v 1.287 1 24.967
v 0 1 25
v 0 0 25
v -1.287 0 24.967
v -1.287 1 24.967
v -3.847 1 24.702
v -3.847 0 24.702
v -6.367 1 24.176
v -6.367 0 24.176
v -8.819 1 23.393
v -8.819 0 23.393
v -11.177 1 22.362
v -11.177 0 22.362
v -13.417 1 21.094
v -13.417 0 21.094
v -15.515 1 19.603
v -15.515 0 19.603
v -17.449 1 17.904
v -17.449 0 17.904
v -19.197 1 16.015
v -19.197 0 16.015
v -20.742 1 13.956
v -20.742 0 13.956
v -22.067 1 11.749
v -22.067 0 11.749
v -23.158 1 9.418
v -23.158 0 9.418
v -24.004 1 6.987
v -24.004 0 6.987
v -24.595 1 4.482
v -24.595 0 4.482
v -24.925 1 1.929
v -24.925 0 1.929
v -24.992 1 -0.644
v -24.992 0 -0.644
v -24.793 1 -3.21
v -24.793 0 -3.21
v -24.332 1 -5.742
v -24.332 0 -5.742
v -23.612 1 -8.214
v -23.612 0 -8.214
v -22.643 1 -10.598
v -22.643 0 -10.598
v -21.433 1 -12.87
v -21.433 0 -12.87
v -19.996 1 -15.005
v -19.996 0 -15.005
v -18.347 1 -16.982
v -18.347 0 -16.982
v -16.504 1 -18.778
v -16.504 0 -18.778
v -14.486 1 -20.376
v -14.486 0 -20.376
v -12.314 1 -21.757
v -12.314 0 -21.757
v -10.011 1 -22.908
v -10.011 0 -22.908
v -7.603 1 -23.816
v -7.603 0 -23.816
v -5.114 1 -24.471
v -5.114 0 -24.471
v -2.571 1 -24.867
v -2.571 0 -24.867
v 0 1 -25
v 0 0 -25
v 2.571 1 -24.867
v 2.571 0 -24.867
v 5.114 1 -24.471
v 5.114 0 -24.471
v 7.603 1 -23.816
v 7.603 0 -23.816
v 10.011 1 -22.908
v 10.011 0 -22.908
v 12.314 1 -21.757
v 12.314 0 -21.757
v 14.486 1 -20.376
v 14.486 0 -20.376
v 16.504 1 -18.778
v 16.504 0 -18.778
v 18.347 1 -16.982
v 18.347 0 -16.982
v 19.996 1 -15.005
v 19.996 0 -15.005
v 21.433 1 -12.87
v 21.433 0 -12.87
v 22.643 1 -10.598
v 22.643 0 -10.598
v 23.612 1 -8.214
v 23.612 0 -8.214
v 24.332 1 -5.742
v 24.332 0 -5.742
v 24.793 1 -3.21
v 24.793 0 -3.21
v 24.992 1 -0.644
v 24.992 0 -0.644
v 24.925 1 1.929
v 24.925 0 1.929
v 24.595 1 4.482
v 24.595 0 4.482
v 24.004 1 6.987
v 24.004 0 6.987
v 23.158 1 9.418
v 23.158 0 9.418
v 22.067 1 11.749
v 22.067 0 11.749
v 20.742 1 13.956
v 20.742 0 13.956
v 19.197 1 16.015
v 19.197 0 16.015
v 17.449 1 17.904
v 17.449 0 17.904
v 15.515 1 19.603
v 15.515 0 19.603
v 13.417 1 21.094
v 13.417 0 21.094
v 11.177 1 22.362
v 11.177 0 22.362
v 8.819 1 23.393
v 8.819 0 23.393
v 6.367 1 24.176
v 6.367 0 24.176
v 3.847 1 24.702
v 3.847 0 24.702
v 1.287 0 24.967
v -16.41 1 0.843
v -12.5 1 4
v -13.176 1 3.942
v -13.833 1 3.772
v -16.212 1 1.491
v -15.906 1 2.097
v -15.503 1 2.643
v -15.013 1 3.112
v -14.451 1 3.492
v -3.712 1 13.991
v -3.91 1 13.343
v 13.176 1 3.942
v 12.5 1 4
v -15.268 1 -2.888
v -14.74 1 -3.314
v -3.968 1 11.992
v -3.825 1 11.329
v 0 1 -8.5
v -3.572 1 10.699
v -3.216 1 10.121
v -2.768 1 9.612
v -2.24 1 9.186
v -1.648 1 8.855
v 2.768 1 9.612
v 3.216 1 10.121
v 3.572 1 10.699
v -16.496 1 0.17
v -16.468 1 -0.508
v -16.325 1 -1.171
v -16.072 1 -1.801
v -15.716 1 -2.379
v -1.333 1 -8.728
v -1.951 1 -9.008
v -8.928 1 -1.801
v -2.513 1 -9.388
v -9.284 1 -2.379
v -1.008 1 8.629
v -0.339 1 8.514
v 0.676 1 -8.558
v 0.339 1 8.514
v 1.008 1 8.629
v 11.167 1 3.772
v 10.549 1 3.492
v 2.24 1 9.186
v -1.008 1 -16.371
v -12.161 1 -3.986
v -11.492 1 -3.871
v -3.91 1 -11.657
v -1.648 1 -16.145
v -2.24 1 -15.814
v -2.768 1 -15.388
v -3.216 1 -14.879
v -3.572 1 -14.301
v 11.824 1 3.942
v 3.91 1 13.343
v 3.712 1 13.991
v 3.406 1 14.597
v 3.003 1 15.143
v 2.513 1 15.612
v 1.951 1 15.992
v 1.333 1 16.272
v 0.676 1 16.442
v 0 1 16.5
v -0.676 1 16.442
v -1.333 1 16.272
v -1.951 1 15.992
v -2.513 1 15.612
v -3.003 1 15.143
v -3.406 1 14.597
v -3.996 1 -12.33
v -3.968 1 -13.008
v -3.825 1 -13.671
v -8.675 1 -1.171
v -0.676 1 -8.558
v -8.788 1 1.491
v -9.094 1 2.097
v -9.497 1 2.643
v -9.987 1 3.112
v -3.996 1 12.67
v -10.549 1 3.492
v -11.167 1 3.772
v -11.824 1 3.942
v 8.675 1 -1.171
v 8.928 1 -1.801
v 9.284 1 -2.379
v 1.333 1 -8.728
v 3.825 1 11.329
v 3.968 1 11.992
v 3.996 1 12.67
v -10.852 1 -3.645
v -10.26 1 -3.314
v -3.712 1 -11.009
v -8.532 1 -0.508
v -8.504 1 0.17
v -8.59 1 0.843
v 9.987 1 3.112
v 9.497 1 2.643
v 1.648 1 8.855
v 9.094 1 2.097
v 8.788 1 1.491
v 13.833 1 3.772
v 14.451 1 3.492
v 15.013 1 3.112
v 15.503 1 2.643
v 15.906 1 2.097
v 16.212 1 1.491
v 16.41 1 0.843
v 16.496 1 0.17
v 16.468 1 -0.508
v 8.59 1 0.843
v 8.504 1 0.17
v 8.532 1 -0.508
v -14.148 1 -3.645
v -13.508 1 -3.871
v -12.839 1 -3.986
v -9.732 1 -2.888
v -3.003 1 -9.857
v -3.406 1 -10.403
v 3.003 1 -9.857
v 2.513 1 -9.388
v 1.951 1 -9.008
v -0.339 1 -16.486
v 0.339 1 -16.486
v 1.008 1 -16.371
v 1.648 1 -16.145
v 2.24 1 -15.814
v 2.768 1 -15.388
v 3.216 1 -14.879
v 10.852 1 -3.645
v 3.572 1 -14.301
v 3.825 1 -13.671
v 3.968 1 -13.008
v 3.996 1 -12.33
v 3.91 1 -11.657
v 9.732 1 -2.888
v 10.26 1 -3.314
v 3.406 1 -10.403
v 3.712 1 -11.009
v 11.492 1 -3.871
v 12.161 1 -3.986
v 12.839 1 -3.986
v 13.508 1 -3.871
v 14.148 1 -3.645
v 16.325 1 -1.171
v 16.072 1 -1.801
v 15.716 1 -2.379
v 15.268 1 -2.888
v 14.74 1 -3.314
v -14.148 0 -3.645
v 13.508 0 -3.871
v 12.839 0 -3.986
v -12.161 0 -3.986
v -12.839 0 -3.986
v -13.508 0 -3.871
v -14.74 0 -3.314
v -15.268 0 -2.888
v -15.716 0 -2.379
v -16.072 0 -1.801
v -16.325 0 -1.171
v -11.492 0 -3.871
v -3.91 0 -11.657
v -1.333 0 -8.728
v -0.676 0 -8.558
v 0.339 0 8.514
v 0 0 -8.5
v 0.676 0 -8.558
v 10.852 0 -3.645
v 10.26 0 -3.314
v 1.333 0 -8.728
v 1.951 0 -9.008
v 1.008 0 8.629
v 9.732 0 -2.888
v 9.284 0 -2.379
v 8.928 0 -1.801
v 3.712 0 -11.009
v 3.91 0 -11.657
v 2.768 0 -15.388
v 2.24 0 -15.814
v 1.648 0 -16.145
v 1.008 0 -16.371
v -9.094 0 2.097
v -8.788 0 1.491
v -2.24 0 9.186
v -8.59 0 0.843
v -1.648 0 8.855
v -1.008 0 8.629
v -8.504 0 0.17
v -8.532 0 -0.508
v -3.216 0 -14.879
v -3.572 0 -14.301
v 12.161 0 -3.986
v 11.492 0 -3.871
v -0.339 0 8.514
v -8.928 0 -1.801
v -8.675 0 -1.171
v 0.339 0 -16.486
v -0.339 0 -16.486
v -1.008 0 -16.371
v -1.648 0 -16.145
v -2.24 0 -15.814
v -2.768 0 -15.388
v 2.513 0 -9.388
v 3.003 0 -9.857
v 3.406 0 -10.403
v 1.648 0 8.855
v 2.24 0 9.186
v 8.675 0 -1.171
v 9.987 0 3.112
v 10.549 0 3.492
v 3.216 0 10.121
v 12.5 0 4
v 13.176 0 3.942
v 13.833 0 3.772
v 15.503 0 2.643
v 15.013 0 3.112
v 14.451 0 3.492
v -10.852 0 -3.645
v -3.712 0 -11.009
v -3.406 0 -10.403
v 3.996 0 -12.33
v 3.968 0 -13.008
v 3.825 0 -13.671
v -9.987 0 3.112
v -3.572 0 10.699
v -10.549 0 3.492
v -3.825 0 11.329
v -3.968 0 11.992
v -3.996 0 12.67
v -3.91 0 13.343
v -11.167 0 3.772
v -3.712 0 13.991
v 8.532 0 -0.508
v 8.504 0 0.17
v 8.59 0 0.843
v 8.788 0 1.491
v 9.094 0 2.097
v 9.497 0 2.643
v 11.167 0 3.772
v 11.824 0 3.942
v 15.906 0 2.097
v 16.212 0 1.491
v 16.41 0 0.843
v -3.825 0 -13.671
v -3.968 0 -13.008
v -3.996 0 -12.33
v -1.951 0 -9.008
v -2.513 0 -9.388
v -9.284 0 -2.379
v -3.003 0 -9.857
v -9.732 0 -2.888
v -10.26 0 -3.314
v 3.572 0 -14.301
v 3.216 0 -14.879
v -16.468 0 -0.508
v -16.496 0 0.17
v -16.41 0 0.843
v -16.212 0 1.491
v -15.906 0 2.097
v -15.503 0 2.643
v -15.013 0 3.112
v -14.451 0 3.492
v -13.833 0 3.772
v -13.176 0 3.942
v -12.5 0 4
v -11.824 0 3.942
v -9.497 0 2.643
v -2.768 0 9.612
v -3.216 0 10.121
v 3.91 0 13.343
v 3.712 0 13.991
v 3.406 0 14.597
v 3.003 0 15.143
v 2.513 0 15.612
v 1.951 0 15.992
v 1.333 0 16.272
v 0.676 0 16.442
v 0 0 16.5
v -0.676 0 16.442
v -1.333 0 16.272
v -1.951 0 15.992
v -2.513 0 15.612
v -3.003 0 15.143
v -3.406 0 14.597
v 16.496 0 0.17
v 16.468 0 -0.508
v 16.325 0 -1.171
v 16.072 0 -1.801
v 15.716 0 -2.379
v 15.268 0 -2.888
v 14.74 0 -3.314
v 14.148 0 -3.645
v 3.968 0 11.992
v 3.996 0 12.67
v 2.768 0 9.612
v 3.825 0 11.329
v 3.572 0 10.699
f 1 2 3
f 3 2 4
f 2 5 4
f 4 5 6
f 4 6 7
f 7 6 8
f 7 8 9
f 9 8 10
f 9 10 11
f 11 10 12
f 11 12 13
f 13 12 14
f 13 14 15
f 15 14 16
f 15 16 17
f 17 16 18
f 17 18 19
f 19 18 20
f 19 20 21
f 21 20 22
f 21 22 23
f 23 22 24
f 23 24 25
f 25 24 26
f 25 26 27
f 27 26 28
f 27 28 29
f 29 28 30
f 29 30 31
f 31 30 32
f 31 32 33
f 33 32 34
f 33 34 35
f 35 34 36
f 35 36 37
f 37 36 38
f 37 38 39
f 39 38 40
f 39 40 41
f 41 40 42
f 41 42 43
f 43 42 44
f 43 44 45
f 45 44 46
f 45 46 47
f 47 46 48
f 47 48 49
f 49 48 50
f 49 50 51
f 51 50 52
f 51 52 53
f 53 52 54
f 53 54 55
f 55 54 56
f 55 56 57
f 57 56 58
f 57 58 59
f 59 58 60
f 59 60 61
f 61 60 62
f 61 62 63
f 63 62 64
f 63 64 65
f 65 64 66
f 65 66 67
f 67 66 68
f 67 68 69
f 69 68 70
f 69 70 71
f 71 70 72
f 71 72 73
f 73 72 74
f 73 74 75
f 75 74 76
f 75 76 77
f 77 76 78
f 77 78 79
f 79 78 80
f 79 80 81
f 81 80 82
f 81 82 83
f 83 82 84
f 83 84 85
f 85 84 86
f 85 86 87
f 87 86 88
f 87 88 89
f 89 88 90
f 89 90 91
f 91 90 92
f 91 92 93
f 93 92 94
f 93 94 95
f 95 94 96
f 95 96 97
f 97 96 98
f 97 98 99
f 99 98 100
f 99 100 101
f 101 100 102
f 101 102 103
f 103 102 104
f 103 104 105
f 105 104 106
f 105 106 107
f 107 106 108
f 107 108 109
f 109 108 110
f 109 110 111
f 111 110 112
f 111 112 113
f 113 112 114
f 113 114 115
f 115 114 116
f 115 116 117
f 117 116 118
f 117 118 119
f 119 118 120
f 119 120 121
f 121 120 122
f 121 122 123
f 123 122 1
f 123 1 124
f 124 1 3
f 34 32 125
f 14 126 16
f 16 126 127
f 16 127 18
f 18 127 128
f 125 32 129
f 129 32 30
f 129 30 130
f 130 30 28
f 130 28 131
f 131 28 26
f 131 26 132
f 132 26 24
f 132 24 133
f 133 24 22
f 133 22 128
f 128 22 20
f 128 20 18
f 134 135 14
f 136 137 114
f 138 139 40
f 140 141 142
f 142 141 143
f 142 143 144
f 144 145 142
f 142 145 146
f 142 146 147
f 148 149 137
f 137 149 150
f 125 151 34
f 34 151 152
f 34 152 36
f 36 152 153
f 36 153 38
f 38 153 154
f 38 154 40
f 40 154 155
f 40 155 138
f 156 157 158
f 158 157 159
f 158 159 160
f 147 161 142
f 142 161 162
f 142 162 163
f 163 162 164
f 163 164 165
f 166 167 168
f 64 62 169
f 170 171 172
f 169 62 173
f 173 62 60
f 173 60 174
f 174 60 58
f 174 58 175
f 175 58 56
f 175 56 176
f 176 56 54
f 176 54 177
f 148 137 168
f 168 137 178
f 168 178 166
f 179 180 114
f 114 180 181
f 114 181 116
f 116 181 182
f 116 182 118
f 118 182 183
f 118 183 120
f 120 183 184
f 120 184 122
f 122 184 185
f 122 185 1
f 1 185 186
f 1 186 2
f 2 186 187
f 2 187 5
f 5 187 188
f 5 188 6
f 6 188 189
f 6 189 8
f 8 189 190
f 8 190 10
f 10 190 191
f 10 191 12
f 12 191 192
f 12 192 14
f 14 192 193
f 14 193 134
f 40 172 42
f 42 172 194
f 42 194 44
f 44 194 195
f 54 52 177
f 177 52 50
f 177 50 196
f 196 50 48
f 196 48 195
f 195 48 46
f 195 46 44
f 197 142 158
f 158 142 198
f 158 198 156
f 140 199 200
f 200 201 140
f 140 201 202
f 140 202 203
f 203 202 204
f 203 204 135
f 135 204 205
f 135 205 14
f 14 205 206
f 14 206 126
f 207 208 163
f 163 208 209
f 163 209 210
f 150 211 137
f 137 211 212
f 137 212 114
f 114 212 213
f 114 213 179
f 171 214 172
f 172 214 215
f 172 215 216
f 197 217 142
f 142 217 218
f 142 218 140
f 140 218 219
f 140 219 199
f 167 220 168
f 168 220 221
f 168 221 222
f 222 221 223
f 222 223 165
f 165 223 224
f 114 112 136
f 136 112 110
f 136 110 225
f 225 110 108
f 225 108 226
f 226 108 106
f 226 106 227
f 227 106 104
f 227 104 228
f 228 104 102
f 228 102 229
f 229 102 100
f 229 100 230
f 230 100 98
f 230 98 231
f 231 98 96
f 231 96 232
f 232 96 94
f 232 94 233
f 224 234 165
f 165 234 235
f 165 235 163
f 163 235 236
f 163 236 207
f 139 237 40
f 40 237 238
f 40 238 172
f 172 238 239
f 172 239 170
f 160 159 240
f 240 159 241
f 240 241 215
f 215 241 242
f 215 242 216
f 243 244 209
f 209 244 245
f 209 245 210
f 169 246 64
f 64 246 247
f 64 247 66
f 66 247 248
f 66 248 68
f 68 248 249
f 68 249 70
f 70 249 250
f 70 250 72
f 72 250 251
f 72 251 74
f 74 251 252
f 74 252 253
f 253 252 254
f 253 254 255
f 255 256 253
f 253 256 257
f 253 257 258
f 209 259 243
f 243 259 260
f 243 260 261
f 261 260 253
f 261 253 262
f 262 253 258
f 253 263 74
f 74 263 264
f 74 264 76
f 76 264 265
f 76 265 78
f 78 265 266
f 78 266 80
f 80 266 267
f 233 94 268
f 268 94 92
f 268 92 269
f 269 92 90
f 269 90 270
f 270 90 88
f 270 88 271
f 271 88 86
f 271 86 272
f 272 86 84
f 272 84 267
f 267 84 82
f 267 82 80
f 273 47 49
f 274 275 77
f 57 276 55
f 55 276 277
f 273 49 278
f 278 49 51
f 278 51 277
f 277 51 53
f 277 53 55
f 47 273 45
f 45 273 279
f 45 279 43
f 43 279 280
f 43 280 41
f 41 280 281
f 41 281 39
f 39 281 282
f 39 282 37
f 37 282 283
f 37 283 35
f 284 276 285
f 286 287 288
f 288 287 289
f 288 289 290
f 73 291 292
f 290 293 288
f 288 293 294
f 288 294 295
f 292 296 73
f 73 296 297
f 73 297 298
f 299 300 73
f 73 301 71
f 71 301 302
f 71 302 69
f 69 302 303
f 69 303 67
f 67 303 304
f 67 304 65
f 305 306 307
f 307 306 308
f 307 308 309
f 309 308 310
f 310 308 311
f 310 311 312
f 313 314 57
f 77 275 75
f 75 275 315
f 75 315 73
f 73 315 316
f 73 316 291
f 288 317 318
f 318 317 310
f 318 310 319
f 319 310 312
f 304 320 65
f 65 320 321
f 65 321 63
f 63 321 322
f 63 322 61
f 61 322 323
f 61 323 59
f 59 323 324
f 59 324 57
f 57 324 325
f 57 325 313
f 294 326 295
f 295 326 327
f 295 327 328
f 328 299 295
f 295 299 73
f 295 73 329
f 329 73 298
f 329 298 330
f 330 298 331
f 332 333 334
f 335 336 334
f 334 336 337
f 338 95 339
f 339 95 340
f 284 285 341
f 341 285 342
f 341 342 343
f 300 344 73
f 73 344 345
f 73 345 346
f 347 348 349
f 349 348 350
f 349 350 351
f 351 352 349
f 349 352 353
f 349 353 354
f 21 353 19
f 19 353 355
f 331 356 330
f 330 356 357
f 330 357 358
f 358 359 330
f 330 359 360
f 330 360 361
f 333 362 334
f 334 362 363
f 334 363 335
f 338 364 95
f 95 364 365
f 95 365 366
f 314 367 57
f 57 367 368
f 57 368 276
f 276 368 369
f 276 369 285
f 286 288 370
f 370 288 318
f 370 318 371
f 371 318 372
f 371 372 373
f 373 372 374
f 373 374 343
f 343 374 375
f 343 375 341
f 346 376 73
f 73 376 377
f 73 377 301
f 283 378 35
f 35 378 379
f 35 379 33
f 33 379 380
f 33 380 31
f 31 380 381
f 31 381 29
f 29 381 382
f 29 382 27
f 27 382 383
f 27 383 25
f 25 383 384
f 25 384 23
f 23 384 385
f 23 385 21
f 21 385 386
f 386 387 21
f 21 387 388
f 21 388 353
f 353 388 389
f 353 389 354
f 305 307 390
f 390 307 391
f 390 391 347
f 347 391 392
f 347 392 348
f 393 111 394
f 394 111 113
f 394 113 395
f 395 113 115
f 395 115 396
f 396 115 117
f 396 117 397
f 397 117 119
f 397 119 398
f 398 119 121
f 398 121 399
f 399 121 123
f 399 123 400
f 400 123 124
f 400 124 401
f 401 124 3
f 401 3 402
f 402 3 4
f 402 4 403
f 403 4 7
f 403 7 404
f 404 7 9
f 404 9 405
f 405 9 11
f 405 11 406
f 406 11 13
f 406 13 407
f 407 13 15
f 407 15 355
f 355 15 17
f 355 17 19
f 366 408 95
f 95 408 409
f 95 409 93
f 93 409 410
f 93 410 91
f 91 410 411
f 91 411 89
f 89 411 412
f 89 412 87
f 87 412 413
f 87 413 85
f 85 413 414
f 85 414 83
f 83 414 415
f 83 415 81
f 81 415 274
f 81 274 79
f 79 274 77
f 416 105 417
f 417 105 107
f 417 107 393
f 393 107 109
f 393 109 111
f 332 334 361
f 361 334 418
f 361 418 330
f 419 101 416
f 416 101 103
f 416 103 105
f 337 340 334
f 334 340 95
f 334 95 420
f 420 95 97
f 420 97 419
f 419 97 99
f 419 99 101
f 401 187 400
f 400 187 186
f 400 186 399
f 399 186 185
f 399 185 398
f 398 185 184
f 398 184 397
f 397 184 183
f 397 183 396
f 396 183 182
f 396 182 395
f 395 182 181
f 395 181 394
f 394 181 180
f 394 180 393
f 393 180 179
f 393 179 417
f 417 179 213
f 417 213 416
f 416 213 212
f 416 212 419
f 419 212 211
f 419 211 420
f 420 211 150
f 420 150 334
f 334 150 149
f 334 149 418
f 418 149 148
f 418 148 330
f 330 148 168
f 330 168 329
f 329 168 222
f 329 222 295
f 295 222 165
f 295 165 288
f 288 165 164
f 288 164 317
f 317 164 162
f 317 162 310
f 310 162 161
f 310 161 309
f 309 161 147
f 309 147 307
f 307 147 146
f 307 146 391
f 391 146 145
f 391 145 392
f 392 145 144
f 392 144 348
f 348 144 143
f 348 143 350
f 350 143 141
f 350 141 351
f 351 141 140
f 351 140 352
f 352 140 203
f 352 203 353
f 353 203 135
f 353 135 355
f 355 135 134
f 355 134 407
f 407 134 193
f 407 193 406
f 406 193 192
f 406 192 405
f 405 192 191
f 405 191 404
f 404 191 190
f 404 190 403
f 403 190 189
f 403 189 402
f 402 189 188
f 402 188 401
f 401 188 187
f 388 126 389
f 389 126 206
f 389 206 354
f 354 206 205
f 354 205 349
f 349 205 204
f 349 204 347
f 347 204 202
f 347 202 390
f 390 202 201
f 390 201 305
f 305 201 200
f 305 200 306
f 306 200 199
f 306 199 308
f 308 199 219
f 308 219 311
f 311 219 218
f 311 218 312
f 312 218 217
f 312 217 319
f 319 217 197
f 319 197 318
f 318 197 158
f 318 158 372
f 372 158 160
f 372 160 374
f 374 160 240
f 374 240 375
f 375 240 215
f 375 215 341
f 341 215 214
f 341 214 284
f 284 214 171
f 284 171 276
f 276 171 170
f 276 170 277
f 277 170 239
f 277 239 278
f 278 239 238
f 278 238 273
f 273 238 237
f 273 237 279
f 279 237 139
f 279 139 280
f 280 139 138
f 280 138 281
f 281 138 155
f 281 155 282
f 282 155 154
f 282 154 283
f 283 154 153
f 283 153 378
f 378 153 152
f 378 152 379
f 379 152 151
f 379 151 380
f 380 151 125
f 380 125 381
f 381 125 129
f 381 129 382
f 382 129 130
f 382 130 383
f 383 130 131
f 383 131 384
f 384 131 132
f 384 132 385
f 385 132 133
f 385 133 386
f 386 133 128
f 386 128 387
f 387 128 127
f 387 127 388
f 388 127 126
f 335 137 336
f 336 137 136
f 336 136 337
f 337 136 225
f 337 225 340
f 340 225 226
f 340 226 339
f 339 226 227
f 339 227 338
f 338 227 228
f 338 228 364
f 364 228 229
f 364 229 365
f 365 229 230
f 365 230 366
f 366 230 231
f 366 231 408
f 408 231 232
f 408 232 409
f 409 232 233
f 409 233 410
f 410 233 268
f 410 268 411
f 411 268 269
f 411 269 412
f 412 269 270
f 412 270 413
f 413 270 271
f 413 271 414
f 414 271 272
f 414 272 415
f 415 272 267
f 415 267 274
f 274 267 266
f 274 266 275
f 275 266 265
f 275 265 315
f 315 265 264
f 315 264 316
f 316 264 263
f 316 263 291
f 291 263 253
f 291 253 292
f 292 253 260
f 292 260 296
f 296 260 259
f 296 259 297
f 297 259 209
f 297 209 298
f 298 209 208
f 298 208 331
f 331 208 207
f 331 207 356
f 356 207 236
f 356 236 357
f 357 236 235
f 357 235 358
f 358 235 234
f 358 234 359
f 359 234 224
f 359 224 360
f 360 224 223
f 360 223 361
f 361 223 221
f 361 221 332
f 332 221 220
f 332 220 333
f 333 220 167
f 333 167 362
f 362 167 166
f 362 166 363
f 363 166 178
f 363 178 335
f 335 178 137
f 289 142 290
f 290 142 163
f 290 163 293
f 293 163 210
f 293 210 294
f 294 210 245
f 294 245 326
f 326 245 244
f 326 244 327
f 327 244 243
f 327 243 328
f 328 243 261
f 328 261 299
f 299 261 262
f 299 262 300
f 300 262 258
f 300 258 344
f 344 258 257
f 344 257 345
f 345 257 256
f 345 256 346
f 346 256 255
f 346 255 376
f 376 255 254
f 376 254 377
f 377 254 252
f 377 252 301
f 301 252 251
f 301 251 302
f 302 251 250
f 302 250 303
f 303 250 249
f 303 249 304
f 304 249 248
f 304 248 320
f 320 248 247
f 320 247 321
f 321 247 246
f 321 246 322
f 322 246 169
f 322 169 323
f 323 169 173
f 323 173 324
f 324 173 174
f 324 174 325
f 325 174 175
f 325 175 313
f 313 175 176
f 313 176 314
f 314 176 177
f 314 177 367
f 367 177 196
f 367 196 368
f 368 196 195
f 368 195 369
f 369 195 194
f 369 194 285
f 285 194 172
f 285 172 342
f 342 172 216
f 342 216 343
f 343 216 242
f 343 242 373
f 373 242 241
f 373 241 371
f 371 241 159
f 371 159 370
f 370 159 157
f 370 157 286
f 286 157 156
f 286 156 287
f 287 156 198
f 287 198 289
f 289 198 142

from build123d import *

# Parameters (mm, degrees)
SKETCH1_R           = 25
BOSS_EXTRUDE1_DEPTH = 1
SKETCH2_R           = 4
CUT_EXTRUDE1_DEPTH  = 1


with BuildPart() as part:
    # Sketch1 → Boss-Extrude1 (new body)
    with BuildSketch(Plane(origin=(0, 0, 0), x_dir=(1, 0, 0), z_dir=(0, 1, 0))):
        Circle(SKETCH1_R)
    extrude(amount=BOSS_EXTRUDE1_DEPTH)

    # Sketch2 → Cut-Extrude1 (cut)
    with BuildSketch(Plane(origin=(0, 1, 0), x_dir=(1, 0, 0), z_dir=(0, 1, 0))):
        with Locations((0, 12.5)):
            Circle(SKETCH2_R)
        with Locations((12.5, 0)):
            Circle(SKETCH2_R)
        with Locations((-12.5, 0)):
            Circle(SKETCH2_R)
        with Locations((0, -12.5)):
            Circle(SKETCH2_R)
    extrude(amount=-CUT_EXTRUDE1_DEPTH, mode=Mode.SUBTRACT)


solid = part.part
